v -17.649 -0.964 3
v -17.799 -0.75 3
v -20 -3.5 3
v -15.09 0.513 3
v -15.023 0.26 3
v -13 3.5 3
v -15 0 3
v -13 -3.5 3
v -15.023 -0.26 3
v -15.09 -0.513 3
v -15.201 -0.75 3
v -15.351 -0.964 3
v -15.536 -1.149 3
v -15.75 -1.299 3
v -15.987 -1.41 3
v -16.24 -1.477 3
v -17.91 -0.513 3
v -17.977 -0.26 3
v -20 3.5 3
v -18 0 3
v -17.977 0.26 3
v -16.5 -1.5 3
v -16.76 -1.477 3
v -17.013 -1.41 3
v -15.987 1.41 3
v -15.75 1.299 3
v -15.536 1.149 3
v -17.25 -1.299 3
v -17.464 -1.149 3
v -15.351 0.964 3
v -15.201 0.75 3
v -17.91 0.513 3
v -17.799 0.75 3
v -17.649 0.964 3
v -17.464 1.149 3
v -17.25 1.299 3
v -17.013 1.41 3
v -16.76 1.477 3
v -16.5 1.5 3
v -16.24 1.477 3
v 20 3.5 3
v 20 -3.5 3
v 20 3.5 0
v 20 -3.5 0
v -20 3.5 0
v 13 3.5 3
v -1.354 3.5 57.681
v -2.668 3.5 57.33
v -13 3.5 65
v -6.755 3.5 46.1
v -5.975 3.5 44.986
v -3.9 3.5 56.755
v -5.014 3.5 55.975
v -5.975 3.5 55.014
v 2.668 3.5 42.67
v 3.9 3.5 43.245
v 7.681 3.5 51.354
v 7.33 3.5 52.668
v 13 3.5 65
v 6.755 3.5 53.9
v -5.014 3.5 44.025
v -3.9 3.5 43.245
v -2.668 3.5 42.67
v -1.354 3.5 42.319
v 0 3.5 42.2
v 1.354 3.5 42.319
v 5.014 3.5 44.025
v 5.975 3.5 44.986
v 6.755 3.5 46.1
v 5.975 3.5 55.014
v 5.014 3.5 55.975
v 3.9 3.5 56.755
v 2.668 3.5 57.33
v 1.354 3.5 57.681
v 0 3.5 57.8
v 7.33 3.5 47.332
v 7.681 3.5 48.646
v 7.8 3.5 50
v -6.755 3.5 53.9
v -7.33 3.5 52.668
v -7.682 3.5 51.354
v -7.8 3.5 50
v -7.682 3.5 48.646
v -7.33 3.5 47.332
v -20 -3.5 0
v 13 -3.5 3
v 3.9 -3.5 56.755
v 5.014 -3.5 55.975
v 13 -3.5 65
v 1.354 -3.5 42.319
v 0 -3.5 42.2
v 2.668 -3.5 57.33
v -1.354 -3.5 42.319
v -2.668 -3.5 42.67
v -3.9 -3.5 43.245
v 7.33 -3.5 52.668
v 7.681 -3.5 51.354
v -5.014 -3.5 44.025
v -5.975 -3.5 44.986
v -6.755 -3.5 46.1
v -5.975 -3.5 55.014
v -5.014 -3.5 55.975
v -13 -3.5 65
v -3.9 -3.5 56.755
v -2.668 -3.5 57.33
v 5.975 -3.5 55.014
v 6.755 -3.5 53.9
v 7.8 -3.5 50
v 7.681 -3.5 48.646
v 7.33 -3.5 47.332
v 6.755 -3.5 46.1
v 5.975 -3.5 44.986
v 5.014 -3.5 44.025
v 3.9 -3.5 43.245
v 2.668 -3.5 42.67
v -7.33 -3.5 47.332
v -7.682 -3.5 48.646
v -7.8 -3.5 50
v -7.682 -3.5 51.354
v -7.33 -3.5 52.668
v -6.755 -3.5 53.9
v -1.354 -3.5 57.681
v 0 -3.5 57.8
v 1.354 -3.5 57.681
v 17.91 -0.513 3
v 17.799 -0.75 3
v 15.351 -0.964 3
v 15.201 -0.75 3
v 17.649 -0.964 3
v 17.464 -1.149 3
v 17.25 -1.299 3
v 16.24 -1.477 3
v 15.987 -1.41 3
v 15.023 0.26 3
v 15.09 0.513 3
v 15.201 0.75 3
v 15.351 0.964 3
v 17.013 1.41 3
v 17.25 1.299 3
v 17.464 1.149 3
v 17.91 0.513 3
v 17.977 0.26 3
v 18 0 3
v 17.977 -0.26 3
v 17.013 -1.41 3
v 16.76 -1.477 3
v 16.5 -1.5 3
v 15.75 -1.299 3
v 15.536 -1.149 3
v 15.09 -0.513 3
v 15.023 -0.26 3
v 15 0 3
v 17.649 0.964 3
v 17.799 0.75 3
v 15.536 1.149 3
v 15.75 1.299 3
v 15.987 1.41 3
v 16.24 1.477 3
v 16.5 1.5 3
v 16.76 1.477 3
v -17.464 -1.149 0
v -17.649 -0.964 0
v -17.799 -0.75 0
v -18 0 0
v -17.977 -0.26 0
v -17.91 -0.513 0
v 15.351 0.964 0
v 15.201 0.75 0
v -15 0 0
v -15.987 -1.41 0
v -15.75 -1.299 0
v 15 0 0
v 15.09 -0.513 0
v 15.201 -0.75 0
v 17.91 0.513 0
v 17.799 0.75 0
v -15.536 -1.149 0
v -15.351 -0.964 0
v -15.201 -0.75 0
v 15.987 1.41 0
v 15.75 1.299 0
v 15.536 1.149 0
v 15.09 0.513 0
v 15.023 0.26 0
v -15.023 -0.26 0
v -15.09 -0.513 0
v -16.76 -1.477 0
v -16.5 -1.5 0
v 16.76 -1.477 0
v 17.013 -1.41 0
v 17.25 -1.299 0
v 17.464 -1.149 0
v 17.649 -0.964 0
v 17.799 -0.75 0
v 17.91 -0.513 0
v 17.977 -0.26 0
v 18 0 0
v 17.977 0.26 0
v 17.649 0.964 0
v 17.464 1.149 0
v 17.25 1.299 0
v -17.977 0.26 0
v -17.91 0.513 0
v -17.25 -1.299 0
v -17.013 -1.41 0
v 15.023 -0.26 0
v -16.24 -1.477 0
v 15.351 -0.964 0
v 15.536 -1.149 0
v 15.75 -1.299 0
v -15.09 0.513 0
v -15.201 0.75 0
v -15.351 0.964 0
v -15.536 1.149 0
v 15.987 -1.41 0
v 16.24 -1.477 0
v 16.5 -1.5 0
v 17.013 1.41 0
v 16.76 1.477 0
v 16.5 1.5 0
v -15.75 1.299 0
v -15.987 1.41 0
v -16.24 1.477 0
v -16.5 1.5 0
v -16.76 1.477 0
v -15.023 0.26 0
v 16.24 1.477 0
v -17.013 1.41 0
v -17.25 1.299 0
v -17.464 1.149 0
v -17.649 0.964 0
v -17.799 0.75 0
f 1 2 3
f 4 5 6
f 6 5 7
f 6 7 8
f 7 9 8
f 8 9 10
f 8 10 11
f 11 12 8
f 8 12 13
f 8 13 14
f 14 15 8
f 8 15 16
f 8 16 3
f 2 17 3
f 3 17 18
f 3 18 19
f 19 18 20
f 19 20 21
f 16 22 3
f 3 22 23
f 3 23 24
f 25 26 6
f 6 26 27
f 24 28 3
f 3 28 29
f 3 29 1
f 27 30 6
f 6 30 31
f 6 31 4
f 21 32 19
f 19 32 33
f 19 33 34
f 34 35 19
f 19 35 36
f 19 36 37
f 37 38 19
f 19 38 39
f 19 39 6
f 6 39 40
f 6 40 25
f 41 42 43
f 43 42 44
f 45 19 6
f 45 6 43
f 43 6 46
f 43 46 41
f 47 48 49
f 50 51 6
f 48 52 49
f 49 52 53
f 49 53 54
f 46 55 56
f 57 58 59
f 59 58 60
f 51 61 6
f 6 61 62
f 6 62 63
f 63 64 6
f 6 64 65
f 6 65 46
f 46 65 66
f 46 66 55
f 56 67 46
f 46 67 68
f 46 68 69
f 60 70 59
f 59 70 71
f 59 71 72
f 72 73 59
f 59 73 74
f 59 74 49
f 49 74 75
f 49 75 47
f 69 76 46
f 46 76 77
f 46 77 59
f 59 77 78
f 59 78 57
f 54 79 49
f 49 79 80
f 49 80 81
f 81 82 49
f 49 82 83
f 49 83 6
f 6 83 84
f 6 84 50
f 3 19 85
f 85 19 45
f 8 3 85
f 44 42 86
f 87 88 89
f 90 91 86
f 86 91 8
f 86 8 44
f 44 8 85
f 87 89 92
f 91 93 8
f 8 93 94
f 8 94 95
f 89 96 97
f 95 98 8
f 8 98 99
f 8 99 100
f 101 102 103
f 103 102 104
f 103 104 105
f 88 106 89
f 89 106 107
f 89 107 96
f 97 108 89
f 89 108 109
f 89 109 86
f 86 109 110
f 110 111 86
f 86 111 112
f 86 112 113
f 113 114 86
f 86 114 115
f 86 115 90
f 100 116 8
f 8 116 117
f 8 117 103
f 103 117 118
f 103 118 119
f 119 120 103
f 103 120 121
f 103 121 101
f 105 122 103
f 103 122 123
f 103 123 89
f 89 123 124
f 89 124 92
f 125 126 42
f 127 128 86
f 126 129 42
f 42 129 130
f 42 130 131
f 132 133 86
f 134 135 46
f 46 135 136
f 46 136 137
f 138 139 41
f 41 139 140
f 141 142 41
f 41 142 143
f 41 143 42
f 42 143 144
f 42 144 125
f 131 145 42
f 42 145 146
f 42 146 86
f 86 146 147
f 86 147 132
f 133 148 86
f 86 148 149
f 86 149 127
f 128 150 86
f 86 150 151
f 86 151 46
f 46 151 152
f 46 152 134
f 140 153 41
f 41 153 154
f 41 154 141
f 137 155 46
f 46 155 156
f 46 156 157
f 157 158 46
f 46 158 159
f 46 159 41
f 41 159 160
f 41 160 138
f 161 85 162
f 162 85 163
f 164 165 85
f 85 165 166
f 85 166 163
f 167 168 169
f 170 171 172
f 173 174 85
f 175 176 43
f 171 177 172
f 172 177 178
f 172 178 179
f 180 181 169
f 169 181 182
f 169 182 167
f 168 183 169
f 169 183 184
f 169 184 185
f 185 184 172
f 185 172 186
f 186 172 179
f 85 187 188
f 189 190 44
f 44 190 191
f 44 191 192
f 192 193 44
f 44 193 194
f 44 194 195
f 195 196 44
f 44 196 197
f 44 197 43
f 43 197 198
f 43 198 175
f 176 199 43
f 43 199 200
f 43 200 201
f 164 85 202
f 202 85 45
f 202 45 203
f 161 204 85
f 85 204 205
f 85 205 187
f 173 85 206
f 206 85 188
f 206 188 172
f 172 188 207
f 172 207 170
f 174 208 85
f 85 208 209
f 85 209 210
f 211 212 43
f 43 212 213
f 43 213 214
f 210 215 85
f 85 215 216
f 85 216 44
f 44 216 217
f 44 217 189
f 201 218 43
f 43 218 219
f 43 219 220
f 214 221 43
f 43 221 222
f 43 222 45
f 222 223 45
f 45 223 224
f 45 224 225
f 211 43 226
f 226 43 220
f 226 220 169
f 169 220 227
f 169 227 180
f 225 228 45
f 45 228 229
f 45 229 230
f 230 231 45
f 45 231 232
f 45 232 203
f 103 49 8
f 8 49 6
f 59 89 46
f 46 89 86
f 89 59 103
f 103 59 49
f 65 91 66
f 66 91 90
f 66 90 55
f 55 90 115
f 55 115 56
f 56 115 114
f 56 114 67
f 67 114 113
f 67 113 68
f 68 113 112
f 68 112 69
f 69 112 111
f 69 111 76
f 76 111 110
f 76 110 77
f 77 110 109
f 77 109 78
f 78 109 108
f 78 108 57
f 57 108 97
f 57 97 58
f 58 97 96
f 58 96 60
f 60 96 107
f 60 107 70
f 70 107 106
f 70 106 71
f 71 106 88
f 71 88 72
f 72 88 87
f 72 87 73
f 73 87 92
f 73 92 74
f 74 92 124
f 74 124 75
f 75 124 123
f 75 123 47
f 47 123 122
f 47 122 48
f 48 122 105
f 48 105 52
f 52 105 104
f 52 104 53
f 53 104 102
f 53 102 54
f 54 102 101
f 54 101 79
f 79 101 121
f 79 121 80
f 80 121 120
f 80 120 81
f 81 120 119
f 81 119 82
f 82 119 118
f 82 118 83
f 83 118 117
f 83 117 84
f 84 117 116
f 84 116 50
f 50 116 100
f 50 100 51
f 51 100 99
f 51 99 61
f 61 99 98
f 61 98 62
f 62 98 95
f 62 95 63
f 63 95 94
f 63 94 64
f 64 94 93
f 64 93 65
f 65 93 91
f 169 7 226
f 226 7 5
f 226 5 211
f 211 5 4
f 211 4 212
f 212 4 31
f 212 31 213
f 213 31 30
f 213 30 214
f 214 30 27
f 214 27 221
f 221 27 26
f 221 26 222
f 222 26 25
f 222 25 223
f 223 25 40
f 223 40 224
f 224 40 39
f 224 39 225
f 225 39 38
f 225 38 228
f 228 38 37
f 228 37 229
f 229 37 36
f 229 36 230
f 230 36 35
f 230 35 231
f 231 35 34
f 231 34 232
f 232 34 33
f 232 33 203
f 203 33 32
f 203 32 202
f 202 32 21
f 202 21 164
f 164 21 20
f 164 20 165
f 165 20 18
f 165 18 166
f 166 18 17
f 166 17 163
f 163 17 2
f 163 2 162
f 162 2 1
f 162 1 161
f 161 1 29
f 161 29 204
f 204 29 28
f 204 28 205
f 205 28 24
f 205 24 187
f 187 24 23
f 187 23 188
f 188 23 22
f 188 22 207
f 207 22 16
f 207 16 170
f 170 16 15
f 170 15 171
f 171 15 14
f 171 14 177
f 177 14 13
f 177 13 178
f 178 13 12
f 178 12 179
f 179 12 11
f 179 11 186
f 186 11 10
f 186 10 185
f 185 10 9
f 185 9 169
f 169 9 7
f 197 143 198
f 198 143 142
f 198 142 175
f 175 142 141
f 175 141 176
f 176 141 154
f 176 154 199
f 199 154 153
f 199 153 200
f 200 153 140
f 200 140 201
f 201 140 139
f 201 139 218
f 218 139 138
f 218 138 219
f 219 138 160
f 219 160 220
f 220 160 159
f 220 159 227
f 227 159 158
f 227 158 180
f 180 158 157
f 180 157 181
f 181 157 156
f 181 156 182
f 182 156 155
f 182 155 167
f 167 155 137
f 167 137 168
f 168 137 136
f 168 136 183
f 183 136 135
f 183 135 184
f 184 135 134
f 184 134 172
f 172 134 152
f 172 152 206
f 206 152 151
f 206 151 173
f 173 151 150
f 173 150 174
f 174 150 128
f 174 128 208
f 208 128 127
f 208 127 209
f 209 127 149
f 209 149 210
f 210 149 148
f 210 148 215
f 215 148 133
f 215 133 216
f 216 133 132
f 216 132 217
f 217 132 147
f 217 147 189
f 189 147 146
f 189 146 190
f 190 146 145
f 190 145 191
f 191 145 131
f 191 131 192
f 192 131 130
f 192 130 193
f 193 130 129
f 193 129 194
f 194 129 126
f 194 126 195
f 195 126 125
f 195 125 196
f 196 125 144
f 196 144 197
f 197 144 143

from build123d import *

# Parameters (mm, degrees)
SKETCH_1_W          = 40
SKETCH_1_H          = 7
EXTRUDE_1_DEPTH     = 3
SKETCH_2_W          = 26
SKETCH_2_H          = 7
EXTRUDE_2_DEPTH     = 62
SKETCH_3_R          = 7.8
CUT_EXTRUDE_1_DEPTH = 7
SKETCH_4_R          = 1.5
CUT_EXTRUDE_2_DEPTH = 7
SKETCH_5_R          = 1.5
CUT_EXTRUDE_3_DEPTH = 7


with BuildPart() as part:
    # Эскиз1 → Бобышка-Вытянуть1 (new body)
    with BuildSketch(Plane.XY):
        Rectangle(SKETCH_1_W, SKETCH_1_H)
    extrude(amount=EXTRUDE_1_DEPTH)

    # Эскиз2 → Бобышка-Вытянуть2 (add)
    with BuildSketch(Plane.XY.offset(3)):
        Rectangle(SKETCH_2_W, SKETCH_2_H)
    extrude(amount=EXTRUDE_2_DEPTH)

    # Эскиз3 → Вырез-Вытянуть1 (cut)
    with BuildSketch(Plane(origin=(0, -3.5, 0), x_dir=(-1, 0, 0), z_dir=(0, -1, 0))):
        with Locations((0, -50)):
            Circle(SKETCH_3_R)
    extrude(amount=-CUT_EXTRUDE_1_DEPTH, mode=Mode.SUBTRACT)

    # Эскиз4 → Вырез-Вытянуть2 (cut)
    with BuildSketch(Plane.XY.offset(3)):
        with Locations((-16.5, 0)):
            Circle(SKETCH_4_R)
    extrude(amount=-CUT_EXTRUDE_2_DEPTH, mode=Mode.SUBTRACT)

    # Эскиз5 → Вырез-Вытянуть3 (cut)
    with BuildSketch(Plane.XY.offset(3)):
        with Locations((16.5, 0)):
            Circle(SKETCH_5_R)
    extrude(amount=-CUT_EXTRUDE_3_DEPTH, mode=Mode.SUBTRACT)


solid = part.part
